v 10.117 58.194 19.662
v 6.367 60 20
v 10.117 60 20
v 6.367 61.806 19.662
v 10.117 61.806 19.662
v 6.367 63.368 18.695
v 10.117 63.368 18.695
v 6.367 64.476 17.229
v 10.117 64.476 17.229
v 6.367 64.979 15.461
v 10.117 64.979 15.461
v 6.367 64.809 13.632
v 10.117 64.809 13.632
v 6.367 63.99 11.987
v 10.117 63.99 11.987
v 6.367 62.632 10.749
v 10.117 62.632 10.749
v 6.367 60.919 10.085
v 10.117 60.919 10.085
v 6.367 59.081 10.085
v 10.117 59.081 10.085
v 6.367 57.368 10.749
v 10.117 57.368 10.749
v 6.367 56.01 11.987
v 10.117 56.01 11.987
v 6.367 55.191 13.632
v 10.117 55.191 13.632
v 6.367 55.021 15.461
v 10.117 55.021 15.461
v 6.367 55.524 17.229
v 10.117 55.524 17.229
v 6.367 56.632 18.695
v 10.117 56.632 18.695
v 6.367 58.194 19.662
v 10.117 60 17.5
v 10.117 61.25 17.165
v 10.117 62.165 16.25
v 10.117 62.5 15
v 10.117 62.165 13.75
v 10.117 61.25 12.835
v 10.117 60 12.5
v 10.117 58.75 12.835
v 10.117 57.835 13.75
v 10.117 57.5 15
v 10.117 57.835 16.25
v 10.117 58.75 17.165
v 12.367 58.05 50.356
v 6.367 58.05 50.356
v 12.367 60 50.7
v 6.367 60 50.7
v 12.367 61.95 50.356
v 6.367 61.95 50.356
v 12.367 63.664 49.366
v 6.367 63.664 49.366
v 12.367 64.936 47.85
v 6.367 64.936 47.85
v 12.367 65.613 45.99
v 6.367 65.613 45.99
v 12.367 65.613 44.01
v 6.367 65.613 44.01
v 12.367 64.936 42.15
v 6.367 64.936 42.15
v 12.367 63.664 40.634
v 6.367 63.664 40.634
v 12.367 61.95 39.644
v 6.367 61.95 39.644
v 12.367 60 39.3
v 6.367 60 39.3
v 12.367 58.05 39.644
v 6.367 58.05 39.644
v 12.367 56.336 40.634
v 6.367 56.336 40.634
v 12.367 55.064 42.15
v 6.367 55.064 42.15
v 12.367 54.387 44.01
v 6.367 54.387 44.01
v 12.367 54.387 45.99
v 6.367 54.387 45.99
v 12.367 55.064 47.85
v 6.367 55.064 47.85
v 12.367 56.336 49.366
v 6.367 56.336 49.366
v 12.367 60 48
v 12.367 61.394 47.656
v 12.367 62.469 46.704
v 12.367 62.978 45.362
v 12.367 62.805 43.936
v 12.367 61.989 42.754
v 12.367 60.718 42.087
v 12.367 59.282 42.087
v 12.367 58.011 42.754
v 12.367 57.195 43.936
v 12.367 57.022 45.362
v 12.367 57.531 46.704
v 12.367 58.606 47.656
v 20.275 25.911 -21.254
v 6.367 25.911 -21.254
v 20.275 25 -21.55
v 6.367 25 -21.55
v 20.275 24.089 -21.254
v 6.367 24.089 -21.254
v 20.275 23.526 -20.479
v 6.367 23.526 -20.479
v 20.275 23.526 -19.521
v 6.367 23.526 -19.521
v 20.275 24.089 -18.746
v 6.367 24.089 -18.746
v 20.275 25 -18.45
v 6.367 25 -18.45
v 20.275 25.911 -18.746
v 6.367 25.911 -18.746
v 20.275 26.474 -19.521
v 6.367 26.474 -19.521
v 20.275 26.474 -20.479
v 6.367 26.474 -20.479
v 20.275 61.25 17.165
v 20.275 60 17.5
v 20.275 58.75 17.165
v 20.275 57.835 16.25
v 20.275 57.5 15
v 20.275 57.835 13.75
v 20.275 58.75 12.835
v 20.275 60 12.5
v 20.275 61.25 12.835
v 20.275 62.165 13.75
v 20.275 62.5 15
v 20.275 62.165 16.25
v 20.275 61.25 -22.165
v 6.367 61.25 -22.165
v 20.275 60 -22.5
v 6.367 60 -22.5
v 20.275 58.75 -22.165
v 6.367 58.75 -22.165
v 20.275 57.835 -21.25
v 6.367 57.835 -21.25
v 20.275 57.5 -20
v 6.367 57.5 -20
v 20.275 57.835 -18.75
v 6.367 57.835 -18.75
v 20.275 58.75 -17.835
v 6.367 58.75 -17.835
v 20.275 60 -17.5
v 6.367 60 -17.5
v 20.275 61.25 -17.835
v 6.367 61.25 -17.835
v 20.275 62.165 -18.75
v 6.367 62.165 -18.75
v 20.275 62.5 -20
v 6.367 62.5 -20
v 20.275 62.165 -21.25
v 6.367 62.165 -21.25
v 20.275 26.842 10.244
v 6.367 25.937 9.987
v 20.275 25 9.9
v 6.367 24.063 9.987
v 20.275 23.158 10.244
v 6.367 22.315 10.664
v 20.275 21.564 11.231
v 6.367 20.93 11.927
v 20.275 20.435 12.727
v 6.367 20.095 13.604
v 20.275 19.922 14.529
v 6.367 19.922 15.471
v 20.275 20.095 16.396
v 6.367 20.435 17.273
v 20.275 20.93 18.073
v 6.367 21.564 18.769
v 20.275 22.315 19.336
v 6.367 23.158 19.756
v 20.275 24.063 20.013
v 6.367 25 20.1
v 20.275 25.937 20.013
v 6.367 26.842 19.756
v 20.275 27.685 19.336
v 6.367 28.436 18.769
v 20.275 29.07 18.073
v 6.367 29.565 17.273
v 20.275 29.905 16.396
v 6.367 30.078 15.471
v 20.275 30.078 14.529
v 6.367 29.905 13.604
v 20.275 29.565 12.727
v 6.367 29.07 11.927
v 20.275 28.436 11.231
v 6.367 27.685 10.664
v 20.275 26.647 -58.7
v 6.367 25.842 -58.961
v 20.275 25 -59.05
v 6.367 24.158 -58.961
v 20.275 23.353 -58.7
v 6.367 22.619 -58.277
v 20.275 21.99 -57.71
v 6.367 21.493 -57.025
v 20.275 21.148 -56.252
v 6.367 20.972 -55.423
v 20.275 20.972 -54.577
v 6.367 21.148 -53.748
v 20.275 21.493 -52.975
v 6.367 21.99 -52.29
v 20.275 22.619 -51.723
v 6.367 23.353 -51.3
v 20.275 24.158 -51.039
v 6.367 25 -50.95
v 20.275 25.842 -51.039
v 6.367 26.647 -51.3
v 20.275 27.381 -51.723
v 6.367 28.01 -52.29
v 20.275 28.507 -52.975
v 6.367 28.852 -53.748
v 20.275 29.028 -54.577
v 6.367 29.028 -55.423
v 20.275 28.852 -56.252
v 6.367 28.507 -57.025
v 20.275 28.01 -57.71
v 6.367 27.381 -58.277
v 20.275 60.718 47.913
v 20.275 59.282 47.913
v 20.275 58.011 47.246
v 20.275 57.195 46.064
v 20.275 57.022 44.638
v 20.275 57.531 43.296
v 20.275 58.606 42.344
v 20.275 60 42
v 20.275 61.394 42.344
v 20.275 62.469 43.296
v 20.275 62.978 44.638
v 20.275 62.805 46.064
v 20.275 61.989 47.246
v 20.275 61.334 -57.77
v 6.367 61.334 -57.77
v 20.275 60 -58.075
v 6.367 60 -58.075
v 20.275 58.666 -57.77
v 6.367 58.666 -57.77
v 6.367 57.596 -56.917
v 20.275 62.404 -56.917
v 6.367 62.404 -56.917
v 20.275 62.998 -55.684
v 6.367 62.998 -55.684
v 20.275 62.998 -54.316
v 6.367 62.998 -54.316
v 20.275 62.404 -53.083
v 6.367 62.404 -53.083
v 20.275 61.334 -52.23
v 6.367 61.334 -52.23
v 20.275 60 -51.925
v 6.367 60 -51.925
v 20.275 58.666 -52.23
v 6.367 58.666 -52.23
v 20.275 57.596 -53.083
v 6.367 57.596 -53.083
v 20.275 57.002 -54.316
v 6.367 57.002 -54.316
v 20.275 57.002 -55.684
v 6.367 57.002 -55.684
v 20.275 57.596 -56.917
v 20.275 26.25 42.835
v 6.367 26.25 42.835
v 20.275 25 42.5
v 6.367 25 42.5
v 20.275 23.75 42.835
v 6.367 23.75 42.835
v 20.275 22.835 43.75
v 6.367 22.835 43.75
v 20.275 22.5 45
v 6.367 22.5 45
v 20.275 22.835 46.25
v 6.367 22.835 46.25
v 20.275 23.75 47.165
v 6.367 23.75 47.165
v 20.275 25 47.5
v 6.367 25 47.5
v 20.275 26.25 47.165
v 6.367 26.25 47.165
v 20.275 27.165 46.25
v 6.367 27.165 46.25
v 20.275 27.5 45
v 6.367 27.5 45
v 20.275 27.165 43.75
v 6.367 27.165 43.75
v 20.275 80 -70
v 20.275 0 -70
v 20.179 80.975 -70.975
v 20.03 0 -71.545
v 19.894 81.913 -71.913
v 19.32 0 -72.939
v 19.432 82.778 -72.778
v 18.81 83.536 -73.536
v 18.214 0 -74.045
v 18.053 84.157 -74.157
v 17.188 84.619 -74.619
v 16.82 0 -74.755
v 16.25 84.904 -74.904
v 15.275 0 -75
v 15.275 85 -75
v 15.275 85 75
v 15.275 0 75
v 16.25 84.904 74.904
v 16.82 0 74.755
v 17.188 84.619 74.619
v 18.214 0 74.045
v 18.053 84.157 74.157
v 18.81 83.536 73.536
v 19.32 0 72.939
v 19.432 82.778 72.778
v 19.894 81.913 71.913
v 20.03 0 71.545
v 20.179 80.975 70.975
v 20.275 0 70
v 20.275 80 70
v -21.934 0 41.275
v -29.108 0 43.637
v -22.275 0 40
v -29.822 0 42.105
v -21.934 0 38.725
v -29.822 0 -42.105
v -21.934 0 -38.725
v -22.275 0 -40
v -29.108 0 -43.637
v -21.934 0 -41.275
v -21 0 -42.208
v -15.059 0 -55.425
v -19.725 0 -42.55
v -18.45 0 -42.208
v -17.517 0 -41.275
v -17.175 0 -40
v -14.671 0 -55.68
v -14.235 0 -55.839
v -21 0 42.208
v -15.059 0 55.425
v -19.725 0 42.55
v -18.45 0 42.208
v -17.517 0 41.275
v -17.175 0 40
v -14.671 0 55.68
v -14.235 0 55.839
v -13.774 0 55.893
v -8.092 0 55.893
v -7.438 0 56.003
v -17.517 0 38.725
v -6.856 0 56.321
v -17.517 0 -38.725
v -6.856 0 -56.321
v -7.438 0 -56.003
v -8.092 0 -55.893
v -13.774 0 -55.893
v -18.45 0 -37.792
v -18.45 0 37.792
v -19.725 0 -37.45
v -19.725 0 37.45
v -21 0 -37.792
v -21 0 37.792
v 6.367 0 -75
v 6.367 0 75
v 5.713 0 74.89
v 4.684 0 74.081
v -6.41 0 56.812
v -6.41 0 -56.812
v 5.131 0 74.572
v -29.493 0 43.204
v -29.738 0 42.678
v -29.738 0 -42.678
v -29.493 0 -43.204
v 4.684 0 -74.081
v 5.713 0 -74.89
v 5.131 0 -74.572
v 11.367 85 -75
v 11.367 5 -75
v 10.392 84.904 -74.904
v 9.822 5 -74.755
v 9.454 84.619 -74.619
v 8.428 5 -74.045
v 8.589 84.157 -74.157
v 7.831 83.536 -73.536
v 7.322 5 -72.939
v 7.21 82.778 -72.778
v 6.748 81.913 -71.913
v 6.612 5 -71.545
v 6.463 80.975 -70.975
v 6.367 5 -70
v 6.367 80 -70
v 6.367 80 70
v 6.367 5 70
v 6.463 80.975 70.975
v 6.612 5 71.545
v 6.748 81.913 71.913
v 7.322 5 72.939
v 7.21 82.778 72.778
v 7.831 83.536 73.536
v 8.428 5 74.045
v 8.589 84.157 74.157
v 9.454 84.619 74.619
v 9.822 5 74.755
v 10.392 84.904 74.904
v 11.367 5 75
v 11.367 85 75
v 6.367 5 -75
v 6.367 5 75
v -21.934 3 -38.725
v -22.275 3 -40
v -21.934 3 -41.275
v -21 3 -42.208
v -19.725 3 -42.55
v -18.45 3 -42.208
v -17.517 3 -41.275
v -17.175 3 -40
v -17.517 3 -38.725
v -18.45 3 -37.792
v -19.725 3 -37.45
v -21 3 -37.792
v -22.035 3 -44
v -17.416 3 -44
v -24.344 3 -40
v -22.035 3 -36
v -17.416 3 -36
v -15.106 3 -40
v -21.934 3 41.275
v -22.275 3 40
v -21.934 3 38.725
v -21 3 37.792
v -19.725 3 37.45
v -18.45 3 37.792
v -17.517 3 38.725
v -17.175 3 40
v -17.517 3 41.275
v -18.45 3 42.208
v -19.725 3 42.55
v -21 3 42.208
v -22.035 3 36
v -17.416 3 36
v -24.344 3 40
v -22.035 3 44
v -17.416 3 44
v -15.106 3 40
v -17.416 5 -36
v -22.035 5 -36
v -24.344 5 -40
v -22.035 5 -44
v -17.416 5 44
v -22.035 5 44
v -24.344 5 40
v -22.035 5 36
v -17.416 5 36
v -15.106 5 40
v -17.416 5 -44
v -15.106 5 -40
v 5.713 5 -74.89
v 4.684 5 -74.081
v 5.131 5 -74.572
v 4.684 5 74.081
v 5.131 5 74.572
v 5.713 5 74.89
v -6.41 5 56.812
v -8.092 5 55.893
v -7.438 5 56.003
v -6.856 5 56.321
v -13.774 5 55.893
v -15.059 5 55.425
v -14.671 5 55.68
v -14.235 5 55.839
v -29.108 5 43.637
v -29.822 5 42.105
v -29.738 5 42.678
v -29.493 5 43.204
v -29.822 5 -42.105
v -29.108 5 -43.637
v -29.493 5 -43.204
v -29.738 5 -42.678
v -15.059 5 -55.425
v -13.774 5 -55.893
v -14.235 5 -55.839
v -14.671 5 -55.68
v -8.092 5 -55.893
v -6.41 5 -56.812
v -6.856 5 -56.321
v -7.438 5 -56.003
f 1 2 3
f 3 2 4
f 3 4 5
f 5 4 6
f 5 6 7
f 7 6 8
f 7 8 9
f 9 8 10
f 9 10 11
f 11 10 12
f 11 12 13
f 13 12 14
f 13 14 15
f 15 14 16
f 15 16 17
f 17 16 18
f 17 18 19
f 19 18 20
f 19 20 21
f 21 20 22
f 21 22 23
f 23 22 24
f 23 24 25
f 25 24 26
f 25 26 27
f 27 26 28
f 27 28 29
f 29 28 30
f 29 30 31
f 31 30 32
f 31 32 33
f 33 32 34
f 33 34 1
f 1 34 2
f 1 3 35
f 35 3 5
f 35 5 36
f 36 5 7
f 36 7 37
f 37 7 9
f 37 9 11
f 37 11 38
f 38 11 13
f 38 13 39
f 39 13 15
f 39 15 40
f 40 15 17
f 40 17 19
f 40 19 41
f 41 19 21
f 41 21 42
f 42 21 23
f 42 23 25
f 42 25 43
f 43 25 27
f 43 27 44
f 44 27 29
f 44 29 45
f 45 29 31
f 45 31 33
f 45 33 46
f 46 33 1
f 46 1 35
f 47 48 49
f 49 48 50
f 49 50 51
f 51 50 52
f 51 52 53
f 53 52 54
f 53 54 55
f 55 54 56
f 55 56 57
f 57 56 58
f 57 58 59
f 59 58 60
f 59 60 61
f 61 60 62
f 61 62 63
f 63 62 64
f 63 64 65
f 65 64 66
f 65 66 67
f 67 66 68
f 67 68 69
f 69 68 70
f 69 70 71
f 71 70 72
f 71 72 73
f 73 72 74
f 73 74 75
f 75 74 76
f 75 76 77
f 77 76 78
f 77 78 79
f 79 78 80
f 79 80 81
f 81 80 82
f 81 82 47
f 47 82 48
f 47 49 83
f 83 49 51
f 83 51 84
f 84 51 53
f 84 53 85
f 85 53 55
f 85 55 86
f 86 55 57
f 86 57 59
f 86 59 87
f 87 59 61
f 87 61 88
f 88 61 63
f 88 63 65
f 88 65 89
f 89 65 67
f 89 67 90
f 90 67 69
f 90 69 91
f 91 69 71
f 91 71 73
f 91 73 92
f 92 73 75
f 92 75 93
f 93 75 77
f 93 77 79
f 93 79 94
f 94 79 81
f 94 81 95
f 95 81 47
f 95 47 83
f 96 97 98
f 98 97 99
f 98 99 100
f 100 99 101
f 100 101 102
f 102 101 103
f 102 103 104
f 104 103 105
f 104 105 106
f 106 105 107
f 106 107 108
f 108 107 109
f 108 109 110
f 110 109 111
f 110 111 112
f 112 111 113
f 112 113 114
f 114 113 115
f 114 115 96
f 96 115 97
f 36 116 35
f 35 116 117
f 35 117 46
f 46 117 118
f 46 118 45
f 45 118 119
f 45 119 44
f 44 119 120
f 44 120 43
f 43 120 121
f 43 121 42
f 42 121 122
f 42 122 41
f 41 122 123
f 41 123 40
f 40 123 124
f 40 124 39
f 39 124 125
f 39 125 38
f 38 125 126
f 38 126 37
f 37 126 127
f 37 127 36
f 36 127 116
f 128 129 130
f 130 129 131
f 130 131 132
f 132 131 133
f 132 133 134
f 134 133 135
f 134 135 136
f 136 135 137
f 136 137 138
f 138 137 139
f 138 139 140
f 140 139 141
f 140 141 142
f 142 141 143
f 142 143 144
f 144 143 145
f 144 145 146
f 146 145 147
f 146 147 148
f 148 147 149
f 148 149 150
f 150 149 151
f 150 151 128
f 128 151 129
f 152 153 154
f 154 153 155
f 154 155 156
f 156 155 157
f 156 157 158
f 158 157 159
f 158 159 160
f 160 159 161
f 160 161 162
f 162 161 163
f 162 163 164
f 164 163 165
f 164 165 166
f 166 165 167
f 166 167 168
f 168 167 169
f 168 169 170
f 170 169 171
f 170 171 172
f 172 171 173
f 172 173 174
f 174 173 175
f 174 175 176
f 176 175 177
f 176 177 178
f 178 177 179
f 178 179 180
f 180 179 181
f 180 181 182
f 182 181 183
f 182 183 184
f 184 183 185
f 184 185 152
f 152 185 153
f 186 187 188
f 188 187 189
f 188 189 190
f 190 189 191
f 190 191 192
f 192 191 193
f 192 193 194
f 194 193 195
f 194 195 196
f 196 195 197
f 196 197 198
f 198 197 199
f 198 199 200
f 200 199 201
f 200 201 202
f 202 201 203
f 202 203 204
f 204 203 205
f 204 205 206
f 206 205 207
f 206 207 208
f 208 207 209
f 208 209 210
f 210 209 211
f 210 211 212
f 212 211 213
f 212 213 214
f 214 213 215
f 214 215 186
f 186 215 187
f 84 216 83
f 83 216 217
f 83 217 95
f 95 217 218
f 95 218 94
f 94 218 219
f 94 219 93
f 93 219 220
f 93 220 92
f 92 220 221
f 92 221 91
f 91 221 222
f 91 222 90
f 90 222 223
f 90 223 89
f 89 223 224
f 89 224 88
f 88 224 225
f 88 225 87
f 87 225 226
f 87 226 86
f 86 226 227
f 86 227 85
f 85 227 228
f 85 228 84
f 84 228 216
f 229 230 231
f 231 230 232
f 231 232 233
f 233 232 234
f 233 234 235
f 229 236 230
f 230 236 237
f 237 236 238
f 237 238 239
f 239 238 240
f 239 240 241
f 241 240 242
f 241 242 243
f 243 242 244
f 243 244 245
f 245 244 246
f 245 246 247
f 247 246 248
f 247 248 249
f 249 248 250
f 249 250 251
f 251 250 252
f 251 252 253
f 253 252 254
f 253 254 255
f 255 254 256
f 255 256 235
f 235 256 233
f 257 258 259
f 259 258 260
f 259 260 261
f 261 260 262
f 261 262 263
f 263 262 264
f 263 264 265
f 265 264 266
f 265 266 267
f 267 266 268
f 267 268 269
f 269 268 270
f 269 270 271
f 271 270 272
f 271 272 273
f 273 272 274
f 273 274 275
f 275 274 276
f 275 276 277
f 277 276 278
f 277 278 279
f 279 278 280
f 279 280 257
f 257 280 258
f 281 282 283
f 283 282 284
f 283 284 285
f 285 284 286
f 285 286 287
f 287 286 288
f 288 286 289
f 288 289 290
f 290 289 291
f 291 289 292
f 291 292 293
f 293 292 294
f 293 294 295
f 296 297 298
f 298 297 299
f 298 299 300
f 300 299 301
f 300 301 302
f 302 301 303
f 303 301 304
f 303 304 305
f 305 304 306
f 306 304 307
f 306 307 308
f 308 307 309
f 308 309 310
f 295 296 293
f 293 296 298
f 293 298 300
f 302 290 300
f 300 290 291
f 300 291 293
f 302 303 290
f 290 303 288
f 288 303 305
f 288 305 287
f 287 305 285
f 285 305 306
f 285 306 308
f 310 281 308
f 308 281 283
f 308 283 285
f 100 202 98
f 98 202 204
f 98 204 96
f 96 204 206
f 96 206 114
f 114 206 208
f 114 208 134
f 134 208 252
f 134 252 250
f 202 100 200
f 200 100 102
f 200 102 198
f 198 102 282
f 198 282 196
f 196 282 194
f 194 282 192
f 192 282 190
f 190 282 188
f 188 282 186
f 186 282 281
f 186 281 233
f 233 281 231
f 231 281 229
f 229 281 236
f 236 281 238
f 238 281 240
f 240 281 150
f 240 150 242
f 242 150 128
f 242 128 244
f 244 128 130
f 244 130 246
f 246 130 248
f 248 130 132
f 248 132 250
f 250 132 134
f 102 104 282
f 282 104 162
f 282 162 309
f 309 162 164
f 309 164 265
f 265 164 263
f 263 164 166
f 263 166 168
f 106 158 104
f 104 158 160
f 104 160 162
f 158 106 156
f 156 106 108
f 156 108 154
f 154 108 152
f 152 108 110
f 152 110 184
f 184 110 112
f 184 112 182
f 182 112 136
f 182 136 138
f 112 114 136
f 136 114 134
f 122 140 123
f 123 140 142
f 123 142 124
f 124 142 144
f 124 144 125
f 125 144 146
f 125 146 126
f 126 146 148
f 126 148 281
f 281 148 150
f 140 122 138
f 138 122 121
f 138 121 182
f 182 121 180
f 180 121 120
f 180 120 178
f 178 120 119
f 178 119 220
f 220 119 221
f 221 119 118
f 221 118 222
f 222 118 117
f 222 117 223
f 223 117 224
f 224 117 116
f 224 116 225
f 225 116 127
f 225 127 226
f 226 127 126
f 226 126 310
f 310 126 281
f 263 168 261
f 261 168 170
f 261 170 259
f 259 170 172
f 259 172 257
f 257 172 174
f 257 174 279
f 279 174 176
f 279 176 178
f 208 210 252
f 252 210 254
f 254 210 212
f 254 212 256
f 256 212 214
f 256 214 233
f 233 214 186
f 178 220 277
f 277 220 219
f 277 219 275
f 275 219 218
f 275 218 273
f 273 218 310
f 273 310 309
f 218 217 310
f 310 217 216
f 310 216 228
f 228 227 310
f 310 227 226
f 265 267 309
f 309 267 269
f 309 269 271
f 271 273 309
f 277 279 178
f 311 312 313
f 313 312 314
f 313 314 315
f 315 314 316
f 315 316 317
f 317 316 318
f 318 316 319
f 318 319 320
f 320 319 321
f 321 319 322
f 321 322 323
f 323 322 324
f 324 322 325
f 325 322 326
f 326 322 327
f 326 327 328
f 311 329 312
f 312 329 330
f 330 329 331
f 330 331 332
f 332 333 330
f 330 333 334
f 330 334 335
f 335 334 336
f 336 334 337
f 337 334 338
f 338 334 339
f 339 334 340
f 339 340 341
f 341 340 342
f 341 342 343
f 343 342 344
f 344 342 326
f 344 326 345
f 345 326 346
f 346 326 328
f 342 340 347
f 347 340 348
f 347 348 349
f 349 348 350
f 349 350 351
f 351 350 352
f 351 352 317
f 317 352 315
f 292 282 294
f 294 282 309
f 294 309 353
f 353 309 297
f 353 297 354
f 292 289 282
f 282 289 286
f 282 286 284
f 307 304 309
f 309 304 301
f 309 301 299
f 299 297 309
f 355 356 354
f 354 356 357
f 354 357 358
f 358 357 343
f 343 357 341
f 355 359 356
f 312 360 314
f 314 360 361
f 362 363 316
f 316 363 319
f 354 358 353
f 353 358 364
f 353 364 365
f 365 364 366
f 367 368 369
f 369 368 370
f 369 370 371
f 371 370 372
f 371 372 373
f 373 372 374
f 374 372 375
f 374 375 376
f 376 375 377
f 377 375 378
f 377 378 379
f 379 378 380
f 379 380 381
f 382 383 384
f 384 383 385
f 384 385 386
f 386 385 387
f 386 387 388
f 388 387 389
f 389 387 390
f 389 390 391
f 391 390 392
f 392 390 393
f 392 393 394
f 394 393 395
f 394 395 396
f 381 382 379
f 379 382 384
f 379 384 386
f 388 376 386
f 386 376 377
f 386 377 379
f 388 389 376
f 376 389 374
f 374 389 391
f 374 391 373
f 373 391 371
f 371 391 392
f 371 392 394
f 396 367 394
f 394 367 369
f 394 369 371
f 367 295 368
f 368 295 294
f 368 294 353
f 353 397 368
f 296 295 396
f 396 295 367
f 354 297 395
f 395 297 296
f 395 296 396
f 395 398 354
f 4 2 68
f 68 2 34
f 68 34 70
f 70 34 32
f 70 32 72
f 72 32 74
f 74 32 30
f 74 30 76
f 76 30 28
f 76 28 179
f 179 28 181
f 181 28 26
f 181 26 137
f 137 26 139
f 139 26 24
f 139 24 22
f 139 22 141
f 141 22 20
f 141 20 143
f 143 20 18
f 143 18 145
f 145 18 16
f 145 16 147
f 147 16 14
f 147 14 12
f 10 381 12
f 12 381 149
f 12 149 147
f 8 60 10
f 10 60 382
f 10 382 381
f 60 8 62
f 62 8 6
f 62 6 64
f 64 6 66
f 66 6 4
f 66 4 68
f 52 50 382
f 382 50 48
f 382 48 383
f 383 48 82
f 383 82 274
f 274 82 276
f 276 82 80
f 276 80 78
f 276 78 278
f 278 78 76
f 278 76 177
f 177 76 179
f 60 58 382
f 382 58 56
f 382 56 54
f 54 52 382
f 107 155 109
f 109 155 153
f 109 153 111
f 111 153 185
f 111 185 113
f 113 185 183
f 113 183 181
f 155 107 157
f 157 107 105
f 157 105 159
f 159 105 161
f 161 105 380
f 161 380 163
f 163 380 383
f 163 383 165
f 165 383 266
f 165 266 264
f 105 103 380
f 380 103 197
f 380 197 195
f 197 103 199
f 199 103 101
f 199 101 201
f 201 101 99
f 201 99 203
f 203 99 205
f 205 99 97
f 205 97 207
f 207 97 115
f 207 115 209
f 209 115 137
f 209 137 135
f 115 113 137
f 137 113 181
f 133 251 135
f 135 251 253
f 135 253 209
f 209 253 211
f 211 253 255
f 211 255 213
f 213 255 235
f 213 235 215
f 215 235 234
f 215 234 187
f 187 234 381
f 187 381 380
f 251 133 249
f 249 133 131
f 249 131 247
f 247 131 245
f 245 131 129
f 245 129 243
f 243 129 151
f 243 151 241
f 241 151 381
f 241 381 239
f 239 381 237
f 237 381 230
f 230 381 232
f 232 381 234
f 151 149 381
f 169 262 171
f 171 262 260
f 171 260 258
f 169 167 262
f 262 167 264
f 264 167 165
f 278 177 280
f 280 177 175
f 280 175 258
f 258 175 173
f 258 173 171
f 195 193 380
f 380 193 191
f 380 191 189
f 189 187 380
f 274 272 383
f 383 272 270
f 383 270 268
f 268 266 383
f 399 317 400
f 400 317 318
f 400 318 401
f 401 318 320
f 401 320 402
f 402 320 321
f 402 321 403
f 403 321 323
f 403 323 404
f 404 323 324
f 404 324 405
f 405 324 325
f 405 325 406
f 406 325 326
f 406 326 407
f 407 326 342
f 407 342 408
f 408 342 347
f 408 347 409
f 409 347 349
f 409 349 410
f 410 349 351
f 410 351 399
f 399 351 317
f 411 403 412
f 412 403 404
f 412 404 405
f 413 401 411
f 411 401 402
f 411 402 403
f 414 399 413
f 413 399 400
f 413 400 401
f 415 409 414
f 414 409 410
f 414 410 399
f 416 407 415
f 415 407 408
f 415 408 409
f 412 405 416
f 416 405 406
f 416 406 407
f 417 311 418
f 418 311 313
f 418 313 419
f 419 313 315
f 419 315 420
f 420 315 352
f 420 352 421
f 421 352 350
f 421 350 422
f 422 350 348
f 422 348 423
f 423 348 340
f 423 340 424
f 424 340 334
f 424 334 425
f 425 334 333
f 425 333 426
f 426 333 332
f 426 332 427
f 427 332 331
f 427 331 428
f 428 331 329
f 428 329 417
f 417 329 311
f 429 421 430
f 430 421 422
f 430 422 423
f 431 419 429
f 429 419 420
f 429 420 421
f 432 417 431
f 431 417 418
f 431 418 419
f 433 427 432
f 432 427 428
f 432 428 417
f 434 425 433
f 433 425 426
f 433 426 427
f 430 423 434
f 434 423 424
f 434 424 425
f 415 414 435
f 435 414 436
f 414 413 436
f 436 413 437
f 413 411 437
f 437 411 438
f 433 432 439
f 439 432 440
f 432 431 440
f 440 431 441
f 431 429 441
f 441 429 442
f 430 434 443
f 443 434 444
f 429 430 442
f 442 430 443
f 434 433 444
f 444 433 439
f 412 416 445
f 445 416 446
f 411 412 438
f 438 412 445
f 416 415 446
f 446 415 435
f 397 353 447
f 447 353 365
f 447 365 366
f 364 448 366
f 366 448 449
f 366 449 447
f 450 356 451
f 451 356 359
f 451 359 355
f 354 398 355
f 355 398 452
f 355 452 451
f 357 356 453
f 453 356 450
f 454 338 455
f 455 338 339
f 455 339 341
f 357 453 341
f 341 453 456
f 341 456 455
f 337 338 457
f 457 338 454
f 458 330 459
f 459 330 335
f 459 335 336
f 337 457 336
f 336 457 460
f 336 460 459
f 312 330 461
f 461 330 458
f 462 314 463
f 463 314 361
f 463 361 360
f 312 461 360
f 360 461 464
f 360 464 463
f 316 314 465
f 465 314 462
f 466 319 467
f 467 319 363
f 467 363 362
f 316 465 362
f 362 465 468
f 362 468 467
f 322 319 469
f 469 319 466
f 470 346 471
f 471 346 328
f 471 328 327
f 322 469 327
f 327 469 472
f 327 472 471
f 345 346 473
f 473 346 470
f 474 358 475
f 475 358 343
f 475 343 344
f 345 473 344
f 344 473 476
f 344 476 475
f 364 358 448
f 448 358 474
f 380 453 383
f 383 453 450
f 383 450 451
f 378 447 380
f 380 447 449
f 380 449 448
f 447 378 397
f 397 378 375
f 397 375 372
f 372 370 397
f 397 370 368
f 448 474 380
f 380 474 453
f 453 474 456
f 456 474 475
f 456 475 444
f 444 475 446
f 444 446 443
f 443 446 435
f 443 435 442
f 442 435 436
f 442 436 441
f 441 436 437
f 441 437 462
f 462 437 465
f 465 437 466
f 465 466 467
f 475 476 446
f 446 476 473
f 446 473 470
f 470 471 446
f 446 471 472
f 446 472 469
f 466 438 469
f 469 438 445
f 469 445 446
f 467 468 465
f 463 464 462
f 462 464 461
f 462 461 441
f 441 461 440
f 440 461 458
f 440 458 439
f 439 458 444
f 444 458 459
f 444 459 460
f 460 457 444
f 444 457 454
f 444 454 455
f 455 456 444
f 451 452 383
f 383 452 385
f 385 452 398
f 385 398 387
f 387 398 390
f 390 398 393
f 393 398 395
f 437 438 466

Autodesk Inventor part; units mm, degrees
ref_plane "YZ Plane" through (0, 0, 0) normal (1, 0, 0) x (0, 1, 0)
ref_plane "XZ Plane" through (0, 0, 0) normal (0, 1, 0) x (-1, 0, 0)
ref_plane "XY Plane" through (0, 0, 0) normal (0, 0, 1) x (1, 0, 0)
sketch "Sketch2" plane through (0, 0, 0) normal (0, 1, 0) x (-1, 0, 0)
  line L0 (15.1065, 40) -> (17.4159, 44)
  line L1 (17.4159, 44) -> (22.0347, 44)
  line L2 (22.0347, 44) -> (24.3441, 40)
  line L3 (24.3441, 40) -> (22.0347, 36)
  line L4 (22.0347, 36) -> (17.4159, 36)
  line L5 (17.4159, 36) -> (15.1065, 40)
  circle A0 centre (19.7253, 40) radius 2.55
  line L6 (-20.2747, -75) -> (-20.2747, 75)
  line L7 (0, 0) -> (41.3759, 0) construction
  line L8 (15.1065, -40) -> (17.4159, -44)
  line L9 (17.4159, -44) -> (22.0347, -44)
  line L10 (22.0347, -44) -> (24.3441, -40)
  line L11 (24.3441, -40) -> (22.0347, -36)
  line L12 (22.0347, -36) -> (17.4159, -36)
  line L13 (17.4159, -36) -> (15.1065, -40)
  circle A1 centre (19.7253, -40) radius 2.55
  line L14 (29.108, 43.6367) -> (15.0592, 55.425)
  line L15 (29.8225, 43.0372) -> (48.1619, 43.0372) construction
  line L16 (13.7736, 55.8929) -> (8.0923, 55.8929)
  line L17 (29.108, -43.6367) -> (15.0592, -55.425)
  line L18 (13.7736, -55.8929) -> (8.0923, -55.8929)
  line L19 (29.8225, 42.1046) -> (29.8225, -42.1046)
  line L20 (-20.2747, 75) -> (-6.367, 75)
  line L21 (-4.6843, 74.081) -> (6.4096, 56.812)
  arc A2 (-4.6843, 74.081) -> (-6.367, 75) centre (-6.367, 73) ccw
  arc A3 (6.4096, 56.812) -> (8.0923, 55.8929) centre (8.0923, 57.8929) ccw
  arc A4 (15.0592, 55.425) -> (13.7736, 55.8929) centre (13.7736, 53.8929) ccw
  arc A5 (29.8225, 42.1046) -> (29.108, 43.6367) centre (27.8225, 42.1046) ccw
  arc A6 (29.108, -43.6367) -> (29.8225, -42.1046) centre (27.8225, -42.1046) ccw
  arc A7 (13.7736, -55.8929) -> (15.0592, -55.425) centre (13.7736, -53.8929) ccw
  line L22 (-20.2747, -75) -> (-6.367, -75)
  line L23 (-4.6843, -74.081) -> (6.4096, -56.812)
  arc A8 (-6.367, -75) -> (-4.6843, -74.081) centre (-6.367, -73) ccw
  arc A9 (8.0923, -55.8929) -> (6.4096, -56.812) centre (8.0923, -57.8929) ccw
  point P0 (19.7253, 36)
  point P1 (19.7253, 44)
  point P2 (23.1894, 42)
  point P3 (19.7253, -36)
  point P4 (19.7253, -44)
  point P5 (23.1894, -42)
  point P6 (14.5016, 55.8929)
  point P7 (7, 55.8929)
  point P8 (29.8225, -43.0372)
  point P9 (14.5016, -55.8929)
  point P10 (7, -55.8929)
  point P11 (-5.2747, 75)
  point P12 (-5.2747, -75)
  dimension "d18" = 8
  dimension "d19" = 5.1
  dimension "d60" = 150
  dimension "d62" = 40
  dimension "d63" = 40
  dimension "d64" = 20
  dimension "d65" = 140
  dimension "d66" = 75
  dimension "d67" = 15
  dimension "d68" = 2
  dimension "d69" = 15
  dimension "d70" = 2
extrude "Extrusion11" add sketch "Sketch2" along normal blind 5 contours L6 L20 A2 L21 A3 L16 A4 L14 A5 L19 A6 L17 A7 L18 A9 L23 A8 L22
extrude "Extrusion12" add sketch "Sketch2" along normal blind 3 contours L0 L1 L2 L3 L4 L5 | L13 L12 L11 L10 L9 L8
sketch "Sketch5" plane through (0, 5, 0) normal (0, 1, 0) x (1, 0, 0)
  line L0 (6.367, -75) -> (20.2747, -75) projected
  line L1 (20.2747, -75) -> (20.2747, 75) projected
  line L2 (6.367, -75) -> (20.2747, -75)
  line L3 (20.2747, -75) -> (20.2747, 75)
  line L4 (20.2747, 75) -> (6.367, 75)
  line L5 (6.367, 75) -> (6.367, -75)
  point P0 (0, 0)
extrude "Extrusion13" add sketch "Sketch5" along normal blind 80
fillet "Fillet1" radius 5 6 edges at (6.367, 45, 75) (20.2747, 42.5, 75) (6.367, 85, 0) (20.2747, 85, 0) (6.367, 45, -75) (20.2747, 42.5, -75)
sketch "Sketch6" plane through (6.367, 5, -70) normal (-1, 0, 0) x (0, 0, 1)
  line L0 (0, 0) -> (0, 75) projected
  line L1 (140, 75) -> (140, 0) construction
  line L2 (140, 0) -> (140, 75)
  line L3 (145, 80) -> (145, -5) projected
  line L4 (0, 75) -> (140, 75) projected
  line L5 (115, 75) -> (115, 0) construction
  line L6 (85, 75) -> (85, 0) construction
  line L7 (50, 75) -> (50, 0) construction
  line L8 (15, 75) -> (15, 0) construction
  line L9 (140, -5) -> (140, 75) projected
  circle A0 centre (115, 55) radius 3
  circle A1 centre (85, 55) radius 2.5
  circle A2 centre (50, 55) radius 2.5
  circle A3 centre (15, 55) radius 3.075
  circle A4 centre (115, 55) radius 5.7
  circle A5 centre (85, 55) radius 5
  circle A6 centre (115, 20) radius 2.5
  circle A7 centre (85, 20) radius 5.1
  circle A8 centre (50, 20) radius 1.55
  circle A9 centre (15, 20) radius 4.05
  line L10 (140, 20) -> (0, 20) construction
  line L11 (140, 55) -> (0, 55) construction
  point P0 (70, -5)
  dimension "d79" = 75
  dimension "d82" = 25
  dimension "d83" = 30
  dimension "d84" = 35
  dimension "d85" = 35
  dimension "d86" = 20
  dimension "d87" = 6
  dimension "d88" = 11.4
  dimension "d89" = 5
  dimension "d90" = 10
  dimension "d91" = 5
  dimension "d92" = 6.15
  dimension "d93" = 20
  dimension "d94" = 5
  dimension "d95" = 10.2
  dimension "d96" = 3.1
  dimension "d97" = 8.1
extrude "Extrusion14" cut sketch "Sketch6" against normal through all contours A0 | A1 | A2 | A3 | A6 | A7 | A8 | A9
extrude "Extrusion15" cut sketch "Sketch6" against normal blind 6 contours A4
extrude "Extrusion16" cut sketch "Sketch6" against normal blind 3.75 contours A5
properties part number "soporte_destornillador"
